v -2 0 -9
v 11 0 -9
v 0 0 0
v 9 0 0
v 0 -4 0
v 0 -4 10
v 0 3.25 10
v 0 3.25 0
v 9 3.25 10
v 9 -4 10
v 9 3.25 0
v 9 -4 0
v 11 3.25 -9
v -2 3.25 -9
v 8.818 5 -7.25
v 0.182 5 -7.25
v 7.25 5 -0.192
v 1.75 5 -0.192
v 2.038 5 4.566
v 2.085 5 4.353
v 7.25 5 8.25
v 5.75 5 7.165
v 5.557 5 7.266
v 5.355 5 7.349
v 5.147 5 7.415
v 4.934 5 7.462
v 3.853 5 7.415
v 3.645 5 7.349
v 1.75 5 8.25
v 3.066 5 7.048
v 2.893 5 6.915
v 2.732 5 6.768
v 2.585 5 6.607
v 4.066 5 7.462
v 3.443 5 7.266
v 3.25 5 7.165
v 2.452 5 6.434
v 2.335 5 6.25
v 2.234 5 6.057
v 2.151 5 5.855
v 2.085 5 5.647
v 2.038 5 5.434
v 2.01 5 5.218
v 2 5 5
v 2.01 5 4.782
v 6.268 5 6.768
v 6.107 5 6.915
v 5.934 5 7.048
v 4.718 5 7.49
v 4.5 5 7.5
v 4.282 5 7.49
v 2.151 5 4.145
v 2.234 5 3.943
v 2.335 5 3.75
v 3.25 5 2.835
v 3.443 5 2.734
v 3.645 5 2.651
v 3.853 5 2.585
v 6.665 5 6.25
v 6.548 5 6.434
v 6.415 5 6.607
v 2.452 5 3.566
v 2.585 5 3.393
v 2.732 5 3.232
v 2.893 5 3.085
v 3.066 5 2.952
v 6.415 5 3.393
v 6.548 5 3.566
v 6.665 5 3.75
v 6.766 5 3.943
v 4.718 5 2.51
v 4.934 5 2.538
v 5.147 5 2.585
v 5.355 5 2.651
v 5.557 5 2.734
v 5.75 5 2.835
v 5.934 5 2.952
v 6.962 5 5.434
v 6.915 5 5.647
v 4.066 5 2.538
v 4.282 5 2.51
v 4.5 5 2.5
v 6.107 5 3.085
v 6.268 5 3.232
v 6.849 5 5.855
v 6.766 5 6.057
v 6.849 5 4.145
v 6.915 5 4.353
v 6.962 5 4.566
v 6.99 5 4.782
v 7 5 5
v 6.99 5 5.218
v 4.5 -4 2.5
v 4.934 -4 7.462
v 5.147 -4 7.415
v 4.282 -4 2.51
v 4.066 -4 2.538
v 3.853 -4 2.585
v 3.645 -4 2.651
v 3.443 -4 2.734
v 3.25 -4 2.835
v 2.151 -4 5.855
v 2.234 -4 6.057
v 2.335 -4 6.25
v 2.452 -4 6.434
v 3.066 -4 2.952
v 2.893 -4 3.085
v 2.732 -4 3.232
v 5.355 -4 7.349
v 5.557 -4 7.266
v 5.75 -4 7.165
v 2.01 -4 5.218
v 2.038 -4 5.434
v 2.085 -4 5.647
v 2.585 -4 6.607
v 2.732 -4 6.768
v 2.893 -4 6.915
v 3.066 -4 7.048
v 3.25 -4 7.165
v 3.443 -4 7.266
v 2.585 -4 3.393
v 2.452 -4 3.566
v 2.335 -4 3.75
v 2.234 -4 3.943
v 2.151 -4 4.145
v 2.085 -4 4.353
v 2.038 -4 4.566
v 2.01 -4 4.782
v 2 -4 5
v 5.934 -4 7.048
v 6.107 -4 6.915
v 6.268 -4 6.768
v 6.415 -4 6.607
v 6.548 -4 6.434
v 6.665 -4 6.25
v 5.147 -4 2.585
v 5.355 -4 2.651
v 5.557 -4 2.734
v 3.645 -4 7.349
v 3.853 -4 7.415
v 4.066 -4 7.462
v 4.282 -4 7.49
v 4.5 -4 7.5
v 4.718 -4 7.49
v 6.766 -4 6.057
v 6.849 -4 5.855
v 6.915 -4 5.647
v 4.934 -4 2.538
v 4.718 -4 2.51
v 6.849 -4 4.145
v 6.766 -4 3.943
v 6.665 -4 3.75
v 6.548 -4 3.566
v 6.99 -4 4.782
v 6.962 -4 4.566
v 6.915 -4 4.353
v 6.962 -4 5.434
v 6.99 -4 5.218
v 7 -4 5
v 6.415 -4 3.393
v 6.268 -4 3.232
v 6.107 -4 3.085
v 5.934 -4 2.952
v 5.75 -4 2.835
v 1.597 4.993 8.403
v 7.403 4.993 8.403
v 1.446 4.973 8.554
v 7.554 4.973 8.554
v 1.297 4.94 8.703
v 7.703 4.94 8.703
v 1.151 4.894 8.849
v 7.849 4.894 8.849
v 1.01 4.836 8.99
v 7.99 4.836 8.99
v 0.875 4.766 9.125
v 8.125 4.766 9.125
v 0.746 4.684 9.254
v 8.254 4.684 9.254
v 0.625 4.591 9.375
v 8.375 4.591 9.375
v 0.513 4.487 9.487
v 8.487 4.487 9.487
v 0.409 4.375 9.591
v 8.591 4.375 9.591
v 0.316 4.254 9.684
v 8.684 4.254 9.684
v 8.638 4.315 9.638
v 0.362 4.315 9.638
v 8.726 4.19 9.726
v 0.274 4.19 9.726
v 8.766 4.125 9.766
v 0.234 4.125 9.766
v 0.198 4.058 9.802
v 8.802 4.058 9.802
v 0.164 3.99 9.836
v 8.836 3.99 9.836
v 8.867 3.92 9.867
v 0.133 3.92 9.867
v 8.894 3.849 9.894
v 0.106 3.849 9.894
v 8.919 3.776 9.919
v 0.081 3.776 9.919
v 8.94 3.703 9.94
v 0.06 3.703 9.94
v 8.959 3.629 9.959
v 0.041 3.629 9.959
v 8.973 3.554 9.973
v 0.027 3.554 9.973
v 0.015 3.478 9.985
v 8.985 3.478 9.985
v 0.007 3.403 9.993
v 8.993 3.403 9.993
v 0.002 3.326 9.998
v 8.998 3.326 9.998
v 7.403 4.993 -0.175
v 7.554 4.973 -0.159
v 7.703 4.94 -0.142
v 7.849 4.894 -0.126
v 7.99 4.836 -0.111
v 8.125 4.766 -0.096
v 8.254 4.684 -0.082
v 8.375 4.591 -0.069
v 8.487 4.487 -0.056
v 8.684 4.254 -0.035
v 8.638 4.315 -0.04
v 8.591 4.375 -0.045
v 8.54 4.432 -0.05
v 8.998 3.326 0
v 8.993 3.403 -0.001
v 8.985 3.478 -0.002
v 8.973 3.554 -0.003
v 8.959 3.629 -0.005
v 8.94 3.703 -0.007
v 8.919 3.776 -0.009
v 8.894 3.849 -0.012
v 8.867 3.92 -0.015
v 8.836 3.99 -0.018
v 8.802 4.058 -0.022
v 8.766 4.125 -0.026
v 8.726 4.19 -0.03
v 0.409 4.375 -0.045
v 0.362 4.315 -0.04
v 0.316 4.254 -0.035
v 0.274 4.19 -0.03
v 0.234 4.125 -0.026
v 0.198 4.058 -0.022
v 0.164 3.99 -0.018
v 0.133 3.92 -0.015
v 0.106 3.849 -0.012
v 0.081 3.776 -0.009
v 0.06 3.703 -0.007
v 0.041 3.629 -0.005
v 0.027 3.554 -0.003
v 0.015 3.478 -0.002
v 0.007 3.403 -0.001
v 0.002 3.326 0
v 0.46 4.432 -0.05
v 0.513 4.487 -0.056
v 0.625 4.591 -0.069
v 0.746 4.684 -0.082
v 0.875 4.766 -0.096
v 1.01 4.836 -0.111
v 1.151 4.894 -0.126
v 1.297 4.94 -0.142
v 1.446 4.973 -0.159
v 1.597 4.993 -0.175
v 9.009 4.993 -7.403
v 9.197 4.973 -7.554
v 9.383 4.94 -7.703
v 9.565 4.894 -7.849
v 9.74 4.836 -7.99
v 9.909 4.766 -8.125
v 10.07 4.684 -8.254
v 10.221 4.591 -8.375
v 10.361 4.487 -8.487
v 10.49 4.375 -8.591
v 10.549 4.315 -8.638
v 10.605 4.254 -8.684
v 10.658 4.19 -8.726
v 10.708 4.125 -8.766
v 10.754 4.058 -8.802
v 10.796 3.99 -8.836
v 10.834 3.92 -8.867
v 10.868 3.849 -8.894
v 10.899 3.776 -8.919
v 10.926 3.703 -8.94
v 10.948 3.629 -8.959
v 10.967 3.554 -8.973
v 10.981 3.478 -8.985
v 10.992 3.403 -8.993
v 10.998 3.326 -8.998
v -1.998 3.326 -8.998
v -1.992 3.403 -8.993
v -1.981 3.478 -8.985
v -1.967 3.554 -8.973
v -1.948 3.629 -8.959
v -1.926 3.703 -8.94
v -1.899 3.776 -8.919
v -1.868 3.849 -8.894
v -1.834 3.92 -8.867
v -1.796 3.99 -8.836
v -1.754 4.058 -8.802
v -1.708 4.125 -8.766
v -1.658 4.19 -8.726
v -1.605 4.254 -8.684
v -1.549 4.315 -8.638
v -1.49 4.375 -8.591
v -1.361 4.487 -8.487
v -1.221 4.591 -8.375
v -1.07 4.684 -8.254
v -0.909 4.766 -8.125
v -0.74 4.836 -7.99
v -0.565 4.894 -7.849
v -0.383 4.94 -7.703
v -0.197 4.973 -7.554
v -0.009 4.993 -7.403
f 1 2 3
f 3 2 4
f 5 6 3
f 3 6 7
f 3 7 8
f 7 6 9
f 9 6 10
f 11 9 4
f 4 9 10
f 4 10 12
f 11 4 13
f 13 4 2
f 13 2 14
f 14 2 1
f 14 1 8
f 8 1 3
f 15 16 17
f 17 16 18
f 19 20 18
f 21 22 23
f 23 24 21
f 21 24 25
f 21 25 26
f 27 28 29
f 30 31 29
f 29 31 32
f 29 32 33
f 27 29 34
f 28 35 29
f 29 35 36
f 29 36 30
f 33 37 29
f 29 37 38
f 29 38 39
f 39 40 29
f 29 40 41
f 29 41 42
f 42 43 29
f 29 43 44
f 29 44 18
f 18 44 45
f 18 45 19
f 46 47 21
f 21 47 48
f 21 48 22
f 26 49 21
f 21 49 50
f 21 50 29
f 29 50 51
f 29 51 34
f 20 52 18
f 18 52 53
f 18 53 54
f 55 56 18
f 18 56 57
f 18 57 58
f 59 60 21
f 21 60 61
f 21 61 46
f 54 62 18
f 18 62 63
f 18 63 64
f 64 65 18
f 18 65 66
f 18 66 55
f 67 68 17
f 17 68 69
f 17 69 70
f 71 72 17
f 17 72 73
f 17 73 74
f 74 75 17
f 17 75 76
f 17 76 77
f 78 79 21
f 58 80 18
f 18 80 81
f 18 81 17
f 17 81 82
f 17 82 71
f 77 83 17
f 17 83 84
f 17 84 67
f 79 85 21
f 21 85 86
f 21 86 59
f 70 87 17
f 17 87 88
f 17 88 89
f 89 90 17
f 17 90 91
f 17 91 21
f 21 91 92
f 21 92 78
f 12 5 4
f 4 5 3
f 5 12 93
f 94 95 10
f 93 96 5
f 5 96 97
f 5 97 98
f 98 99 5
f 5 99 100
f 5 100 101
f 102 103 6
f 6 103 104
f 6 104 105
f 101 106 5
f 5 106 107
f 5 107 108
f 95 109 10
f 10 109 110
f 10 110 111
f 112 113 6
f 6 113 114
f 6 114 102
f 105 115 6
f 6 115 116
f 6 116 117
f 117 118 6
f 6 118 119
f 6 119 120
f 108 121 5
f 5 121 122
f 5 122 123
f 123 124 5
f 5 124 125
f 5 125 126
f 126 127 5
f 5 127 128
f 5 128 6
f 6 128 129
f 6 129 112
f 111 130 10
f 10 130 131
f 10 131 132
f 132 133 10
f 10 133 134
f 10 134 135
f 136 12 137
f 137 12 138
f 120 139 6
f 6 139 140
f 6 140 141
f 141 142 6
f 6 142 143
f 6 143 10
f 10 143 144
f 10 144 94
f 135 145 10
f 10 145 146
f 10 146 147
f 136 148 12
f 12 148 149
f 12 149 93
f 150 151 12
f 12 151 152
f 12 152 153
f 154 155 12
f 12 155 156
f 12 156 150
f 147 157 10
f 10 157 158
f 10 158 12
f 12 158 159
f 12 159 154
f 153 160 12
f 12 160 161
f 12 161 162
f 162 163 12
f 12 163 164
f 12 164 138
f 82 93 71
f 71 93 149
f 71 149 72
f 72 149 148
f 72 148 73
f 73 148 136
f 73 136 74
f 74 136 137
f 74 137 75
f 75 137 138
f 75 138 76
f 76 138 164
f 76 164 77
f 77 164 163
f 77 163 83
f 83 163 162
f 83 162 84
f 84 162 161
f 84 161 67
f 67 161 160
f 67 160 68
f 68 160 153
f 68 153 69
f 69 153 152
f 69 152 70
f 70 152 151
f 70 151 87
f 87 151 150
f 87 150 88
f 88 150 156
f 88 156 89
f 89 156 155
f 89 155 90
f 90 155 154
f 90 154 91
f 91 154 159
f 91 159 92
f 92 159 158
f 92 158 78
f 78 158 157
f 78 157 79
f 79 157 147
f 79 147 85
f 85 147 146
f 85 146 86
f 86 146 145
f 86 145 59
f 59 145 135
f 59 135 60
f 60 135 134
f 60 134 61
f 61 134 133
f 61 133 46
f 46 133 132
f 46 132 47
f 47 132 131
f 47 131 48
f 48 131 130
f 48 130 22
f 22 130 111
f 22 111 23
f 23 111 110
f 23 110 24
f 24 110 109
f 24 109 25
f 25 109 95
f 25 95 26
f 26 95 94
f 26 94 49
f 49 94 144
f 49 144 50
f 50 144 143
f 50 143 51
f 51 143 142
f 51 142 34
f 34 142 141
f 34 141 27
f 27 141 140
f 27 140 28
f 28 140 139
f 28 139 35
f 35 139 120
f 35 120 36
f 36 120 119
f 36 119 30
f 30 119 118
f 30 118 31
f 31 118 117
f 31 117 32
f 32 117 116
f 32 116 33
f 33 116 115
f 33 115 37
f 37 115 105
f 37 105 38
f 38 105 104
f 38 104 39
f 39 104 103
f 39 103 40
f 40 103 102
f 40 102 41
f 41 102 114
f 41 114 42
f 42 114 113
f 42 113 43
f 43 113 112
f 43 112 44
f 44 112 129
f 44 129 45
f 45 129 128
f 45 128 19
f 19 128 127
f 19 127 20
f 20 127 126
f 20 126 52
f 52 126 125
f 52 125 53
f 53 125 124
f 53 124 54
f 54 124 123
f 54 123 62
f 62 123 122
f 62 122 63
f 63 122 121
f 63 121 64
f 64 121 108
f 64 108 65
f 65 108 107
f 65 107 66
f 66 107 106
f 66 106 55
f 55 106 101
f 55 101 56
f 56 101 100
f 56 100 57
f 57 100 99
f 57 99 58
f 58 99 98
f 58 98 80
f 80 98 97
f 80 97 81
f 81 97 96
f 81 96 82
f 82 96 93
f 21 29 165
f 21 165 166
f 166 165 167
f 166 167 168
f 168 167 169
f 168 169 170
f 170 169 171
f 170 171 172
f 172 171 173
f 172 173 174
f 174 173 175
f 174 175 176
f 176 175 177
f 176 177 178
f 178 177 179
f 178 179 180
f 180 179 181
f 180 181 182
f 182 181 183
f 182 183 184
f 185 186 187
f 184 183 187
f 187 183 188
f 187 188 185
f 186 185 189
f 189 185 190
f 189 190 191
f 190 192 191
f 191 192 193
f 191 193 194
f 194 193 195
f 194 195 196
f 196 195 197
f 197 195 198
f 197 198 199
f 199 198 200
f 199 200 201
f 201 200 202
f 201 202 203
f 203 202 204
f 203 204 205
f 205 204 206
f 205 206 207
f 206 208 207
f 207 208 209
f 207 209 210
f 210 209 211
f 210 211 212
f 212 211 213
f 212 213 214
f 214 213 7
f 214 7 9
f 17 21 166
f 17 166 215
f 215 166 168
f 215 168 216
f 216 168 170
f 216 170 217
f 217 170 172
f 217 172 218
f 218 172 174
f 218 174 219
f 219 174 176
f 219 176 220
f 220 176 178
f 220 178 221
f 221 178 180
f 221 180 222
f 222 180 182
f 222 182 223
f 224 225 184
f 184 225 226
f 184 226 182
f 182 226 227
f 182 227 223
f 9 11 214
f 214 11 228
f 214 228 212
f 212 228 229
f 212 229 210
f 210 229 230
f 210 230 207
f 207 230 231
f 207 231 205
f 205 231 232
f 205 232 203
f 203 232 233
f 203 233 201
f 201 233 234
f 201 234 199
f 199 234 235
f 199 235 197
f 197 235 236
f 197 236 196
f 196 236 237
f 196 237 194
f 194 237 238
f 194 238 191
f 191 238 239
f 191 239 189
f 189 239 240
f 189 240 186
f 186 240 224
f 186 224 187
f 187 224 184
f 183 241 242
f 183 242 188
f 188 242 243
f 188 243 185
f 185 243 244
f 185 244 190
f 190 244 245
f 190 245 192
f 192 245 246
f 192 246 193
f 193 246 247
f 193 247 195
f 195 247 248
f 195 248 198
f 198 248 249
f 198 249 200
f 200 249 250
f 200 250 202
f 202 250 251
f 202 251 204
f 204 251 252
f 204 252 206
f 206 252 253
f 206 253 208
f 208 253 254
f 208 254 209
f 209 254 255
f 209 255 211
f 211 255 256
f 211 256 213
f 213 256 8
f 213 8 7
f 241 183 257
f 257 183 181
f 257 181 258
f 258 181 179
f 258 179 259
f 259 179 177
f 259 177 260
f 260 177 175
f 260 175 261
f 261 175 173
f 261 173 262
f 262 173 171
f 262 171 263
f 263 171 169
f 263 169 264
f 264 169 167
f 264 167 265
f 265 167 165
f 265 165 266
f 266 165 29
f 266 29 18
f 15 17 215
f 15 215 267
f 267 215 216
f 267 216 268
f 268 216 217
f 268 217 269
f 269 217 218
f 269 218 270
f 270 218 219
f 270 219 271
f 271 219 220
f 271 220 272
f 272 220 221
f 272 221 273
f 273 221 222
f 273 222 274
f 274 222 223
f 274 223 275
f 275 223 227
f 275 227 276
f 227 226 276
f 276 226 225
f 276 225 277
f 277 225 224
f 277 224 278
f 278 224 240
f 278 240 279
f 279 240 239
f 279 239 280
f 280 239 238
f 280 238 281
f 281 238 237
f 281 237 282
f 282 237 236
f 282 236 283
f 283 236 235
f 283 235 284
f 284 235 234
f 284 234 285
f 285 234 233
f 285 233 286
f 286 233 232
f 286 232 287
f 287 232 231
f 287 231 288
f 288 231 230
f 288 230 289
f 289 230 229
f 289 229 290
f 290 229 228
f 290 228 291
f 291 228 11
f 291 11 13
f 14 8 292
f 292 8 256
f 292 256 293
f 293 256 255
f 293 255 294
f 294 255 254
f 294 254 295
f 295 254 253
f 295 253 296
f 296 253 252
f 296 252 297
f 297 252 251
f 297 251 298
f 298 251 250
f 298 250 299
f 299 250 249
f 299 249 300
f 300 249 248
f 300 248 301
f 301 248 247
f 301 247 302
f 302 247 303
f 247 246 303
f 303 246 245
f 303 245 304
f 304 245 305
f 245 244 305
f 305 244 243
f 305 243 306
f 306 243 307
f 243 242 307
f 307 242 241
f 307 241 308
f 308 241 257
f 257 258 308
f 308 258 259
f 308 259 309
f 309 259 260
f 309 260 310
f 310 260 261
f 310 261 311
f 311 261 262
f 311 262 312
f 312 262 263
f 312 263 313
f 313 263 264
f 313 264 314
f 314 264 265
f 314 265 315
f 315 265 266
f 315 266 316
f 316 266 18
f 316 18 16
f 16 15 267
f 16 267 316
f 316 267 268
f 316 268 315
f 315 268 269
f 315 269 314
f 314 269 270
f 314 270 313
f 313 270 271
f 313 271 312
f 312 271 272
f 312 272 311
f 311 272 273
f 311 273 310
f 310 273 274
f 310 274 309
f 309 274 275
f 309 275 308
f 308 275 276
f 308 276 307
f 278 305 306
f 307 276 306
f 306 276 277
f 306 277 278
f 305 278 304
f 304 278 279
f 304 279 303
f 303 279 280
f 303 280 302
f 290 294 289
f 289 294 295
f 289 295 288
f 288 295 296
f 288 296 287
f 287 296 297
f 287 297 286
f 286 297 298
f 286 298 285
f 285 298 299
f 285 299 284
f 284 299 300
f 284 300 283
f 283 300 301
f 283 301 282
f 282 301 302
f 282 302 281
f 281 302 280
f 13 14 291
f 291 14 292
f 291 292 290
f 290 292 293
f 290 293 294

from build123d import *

# Parameters (mm, degrees)
BOSS_EXTRUDE2_DEPTH = 5
SKETCH3_W           = 9
SKETCH3_H           = 10
BOSS_EXTRUDE3_DEPTH = 4
SKETCH4_R           = 2.5
CUT_EXTRUDE1_DEPTH  = 10
FILLET1_R           = 1.75


with BuildPart() as part:
    # Sketch1 → Boss-Extrude2 (new body)
    with BuildSketch(Plane(origin=(0, 0, 0), x_dir=(1, 0, 0), z_dir=(0, 1, 0))):
        Polygon((0, 0), (-2, 9), (11, 9), (9, 0), (9, -10), (0, -10), align=None)
    extrude(amount=BOSS_EXTRUDE2_DEPTH)

    # Sketch3 → Boss-Extrude3 (add)
    with BuildSketch(Plane.XZ):
        with Locations((4.5, 5)):
            Rectangle(SKETCH3_W, SKETCH3_H)
    extrude(amount=BOSS_EXTRUDE3_DEPTH)

    # Sketch4 → Cut-Extrude1 (cut, through all)
    with BuildSketch(Plane.XZ.offset(4)):
        with Locations((4.5, 5)):
            Circle(SKETCH4_R)
    extrude(amount=-CUT_EXTRUDE1_DEPTH, mode=Mode.SUBTRACT)

    # Fillet1
    fillet1_edges = [part.edges().sort_by_distance(p)[0] for p in [
        (9, 5, 5),
        (10, 5, -4.5),
        (4.5, 5, -9),
        (-1, 5, -4.5),
        (0, 5, 5),
        (4.5, 5, 10),
    ]]
    fillet(fillet1_edges, radius=FILLET1_R)


solid = part.part
